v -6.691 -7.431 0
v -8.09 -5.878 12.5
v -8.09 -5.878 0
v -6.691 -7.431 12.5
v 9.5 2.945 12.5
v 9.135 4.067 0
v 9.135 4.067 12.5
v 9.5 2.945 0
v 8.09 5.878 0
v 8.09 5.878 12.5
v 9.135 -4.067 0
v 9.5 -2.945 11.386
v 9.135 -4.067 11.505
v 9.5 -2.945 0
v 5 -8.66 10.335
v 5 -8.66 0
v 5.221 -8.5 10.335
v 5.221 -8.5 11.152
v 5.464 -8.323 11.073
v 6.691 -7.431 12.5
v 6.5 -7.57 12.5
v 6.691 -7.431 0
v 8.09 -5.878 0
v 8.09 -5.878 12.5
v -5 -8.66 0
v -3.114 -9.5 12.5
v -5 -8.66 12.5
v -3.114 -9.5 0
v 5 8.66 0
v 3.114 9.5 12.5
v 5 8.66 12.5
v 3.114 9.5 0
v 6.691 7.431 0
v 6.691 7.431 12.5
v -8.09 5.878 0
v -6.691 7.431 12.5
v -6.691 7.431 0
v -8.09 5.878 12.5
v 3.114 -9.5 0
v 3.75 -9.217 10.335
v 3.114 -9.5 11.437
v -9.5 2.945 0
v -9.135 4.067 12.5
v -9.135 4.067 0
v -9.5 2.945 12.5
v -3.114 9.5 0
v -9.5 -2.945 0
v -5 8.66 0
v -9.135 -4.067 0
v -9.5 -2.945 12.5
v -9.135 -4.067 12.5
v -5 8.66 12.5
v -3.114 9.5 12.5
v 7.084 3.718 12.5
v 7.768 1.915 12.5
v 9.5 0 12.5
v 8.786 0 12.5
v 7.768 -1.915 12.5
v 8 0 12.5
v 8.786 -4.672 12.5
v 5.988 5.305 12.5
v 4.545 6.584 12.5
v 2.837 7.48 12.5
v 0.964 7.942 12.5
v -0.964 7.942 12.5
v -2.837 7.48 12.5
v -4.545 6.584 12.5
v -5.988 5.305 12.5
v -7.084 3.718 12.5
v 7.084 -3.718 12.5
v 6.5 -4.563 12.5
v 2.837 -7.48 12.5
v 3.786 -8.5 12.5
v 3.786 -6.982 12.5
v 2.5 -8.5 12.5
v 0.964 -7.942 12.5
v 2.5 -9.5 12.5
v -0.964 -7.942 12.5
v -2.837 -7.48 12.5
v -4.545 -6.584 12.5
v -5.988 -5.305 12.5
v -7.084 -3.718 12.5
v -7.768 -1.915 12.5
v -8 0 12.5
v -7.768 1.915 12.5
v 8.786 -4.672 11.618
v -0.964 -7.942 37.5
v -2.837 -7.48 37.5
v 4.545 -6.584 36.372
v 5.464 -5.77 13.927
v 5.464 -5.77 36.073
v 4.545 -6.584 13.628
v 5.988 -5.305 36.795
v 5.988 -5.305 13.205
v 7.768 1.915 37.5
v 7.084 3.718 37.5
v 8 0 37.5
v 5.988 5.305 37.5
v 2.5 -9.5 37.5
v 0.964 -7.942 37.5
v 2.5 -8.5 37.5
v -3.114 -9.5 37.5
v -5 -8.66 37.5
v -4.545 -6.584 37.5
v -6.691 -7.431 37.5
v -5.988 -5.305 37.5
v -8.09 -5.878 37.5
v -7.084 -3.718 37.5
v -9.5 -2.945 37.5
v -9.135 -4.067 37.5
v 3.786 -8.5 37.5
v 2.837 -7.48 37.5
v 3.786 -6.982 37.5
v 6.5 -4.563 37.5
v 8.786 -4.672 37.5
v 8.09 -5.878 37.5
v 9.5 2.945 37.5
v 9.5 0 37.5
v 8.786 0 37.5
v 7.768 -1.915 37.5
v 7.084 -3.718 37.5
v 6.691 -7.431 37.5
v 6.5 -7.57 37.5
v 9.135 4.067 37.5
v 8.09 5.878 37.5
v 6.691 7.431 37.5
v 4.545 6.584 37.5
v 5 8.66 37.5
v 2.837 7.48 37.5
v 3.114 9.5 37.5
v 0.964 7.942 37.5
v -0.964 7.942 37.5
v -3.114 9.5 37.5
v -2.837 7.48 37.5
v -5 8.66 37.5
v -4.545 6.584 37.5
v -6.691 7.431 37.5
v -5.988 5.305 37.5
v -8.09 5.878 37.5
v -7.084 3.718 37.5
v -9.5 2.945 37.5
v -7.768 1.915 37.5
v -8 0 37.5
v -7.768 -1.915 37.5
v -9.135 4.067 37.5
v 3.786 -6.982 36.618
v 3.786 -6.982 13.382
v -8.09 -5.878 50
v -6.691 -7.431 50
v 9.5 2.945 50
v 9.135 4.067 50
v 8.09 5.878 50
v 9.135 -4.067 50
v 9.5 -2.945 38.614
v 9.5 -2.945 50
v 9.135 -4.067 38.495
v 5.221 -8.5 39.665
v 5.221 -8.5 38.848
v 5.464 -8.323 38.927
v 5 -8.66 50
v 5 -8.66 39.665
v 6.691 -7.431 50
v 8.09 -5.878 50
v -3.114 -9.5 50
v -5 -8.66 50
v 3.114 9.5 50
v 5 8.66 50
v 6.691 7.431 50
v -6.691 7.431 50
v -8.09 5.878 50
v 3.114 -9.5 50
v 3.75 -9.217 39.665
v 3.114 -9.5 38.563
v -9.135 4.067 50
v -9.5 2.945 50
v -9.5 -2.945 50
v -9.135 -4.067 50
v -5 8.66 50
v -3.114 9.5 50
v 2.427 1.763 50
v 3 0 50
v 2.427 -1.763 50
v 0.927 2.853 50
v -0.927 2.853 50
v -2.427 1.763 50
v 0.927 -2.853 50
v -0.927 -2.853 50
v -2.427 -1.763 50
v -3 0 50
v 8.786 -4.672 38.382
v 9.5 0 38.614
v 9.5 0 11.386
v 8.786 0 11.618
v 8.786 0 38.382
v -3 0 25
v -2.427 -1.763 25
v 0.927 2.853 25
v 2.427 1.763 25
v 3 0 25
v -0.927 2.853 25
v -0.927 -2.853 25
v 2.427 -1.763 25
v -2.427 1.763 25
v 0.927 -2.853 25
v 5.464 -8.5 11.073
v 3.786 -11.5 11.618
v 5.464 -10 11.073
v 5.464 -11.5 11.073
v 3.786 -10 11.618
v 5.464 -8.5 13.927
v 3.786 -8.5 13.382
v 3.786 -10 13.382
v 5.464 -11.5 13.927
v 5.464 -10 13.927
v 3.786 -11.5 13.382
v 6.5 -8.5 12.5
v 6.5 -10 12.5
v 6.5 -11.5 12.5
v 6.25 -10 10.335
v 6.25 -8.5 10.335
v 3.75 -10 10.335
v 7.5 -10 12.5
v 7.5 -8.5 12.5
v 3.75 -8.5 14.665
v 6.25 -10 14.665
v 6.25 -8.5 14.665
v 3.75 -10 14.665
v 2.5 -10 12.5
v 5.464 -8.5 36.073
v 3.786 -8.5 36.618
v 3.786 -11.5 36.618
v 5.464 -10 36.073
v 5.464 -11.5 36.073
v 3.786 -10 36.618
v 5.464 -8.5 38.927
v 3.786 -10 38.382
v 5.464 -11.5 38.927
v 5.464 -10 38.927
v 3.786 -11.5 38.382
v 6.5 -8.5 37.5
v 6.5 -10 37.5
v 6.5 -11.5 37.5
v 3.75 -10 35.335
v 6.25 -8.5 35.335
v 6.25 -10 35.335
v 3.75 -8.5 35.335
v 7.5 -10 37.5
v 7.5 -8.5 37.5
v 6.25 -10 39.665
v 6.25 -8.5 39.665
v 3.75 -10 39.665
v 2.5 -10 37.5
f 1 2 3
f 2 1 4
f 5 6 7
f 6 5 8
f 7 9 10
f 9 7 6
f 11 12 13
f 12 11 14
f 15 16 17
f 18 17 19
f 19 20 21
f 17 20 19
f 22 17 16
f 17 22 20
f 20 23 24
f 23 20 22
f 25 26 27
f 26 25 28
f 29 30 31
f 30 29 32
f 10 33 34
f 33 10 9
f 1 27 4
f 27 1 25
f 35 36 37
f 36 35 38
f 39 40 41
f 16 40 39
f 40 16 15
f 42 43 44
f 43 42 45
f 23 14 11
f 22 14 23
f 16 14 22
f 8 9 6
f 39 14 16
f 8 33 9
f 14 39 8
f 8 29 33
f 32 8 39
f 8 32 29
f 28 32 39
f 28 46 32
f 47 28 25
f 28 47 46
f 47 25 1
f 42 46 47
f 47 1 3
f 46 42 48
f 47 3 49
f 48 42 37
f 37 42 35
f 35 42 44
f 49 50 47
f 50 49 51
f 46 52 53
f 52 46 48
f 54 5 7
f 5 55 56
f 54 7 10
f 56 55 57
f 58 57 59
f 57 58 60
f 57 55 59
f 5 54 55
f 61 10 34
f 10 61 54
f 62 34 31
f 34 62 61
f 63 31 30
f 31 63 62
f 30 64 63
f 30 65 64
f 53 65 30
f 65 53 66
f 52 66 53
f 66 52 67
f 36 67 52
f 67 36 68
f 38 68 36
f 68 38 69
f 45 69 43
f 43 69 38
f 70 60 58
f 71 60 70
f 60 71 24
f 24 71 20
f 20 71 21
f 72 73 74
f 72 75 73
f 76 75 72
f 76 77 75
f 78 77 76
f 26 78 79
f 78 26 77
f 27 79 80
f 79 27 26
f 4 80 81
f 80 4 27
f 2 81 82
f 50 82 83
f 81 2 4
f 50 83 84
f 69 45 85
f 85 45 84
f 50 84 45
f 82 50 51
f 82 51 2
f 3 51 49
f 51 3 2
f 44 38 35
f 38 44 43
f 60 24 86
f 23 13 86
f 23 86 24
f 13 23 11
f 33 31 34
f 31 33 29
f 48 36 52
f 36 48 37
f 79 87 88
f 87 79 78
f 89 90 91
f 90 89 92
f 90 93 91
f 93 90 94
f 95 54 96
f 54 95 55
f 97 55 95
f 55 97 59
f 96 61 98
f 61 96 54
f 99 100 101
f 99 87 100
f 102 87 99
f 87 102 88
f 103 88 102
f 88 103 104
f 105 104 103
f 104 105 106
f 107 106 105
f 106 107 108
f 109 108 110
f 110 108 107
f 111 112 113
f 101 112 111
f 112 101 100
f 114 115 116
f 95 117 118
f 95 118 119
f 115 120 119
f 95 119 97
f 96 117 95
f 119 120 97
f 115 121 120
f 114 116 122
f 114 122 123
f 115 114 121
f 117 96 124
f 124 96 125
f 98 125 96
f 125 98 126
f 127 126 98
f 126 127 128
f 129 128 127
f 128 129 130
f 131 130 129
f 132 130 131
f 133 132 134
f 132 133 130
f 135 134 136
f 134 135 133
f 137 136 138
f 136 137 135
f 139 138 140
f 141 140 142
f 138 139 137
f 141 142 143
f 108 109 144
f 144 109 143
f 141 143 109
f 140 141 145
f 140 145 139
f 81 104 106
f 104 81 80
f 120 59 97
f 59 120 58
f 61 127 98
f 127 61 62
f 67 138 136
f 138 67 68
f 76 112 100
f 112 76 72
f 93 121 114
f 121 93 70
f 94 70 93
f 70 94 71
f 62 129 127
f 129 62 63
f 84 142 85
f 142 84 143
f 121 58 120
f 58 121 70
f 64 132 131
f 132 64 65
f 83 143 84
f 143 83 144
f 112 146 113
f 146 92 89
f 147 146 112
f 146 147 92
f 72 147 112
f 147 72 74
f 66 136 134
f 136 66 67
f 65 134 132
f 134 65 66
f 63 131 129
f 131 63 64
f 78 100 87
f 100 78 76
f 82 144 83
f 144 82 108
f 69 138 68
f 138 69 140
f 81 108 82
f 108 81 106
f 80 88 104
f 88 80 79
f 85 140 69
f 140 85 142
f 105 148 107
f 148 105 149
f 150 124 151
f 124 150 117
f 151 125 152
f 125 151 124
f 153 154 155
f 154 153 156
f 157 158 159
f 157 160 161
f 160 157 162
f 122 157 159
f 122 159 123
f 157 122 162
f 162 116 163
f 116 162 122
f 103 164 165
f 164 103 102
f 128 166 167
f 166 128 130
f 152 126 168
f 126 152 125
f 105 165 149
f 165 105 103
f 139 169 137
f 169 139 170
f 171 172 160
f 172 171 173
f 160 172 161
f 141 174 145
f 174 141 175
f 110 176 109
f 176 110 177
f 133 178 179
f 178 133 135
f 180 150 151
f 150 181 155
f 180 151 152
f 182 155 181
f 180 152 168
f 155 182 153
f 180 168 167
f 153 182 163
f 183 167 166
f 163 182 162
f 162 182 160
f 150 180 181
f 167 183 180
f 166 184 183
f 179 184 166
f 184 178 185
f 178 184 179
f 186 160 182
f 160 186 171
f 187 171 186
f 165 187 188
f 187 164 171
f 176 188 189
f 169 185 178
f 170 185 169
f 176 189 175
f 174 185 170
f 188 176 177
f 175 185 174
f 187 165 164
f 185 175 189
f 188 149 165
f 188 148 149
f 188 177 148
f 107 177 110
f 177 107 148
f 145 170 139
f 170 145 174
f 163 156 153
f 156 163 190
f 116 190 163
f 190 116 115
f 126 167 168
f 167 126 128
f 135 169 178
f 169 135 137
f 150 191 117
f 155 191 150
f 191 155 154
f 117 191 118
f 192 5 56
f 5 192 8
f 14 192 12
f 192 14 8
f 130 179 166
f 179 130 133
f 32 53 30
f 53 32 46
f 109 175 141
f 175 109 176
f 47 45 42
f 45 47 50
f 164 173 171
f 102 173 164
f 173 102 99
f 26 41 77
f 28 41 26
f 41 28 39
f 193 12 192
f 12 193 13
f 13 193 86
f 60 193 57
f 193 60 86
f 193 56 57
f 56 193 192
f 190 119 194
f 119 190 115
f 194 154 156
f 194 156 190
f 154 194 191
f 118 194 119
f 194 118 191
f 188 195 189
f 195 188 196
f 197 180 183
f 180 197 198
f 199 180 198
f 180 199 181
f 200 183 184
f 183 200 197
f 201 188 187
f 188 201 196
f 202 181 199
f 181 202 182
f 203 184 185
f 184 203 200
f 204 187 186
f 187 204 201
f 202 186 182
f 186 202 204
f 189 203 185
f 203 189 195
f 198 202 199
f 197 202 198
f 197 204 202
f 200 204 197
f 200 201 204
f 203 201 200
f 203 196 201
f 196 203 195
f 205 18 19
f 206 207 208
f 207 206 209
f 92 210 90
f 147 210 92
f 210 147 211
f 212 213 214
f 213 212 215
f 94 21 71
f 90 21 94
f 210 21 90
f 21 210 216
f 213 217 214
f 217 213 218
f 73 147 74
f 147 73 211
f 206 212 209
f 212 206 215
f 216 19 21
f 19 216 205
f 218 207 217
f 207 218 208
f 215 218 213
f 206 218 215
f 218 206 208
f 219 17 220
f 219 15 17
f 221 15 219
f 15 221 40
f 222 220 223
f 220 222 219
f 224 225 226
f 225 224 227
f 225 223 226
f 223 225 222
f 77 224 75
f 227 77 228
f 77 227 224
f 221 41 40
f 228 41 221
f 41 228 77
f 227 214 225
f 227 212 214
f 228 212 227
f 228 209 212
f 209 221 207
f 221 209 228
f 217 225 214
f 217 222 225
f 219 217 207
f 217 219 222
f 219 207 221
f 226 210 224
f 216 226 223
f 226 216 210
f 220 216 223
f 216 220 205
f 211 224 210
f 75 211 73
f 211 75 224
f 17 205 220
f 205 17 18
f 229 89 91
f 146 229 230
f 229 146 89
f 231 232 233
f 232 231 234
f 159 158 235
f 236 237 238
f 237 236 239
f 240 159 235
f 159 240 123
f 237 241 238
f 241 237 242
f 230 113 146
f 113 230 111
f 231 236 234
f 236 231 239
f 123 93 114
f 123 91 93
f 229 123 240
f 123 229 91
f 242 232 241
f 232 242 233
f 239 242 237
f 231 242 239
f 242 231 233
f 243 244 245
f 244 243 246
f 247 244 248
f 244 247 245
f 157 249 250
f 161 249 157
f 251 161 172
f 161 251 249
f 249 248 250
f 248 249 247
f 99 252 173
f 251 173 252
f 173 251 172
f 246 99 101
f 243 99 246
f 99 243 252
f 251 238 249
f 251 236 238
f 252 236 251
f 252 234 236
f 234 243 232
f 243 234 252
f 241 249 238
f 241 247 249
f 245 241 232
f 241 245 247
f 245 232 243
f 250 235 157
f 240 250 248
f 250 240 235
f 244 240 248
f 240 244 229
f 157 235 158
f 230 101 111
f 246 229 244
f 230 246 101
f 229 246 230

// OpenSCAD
// Parameters
flexible_coupling_length = 50; // Total length of the coupling
flexible_coupling_diameter = 20; // Diameter of the coupling
central_section_diameter = 16; // Adjusted diameter of the central section to match the original model
slit_width = 1; // Width of the slits
slit_depth = 8; // Depth of the slits
hole_diameter = 6; // Diameter of the shaft holes
threaded_hole_diameter = 3; // Diameter of the threaded holes
screw_diameter = 3; // Diameter of the fastening screws
screw_length = 10; // Length of the fastening screws
hex_head_diameter = 5; // Diameter of the hexagonal socket head

// Flexible Coupling Body
module flexible_coupling_body() {
    difference() {
        // Main cylindrical body with a narrower central section
        union() {
            cylinder(flexible_coupling_length / 4, flexible_coupling_diameter / 2, flexible_coupling_diameter / 2);
            translate([0, 0, flexible_coupling_length / 4])
                cylinder(flexible_coupling_length / 2, central_section_diameter / 2, central_section_diameter / 2);
            translate([0, 0, flexible_coupling_length * 3 / 4])
                cylinder(flexible_coupling_length / 4, flexible_coupling_diameter / 2, flexible_coupling_diameter / 2);
        }
        
        // Shaft holes
        translate([0, 0, flexible_coupling_length / 2])
            cylinder(flexible_coupling_length, hole_diameter / 2, hole_diameter / 2);
        
        // Slits for flexibility
        for (i = [0 : 90 : 270]) {
            rotate([0, 0, i])
                for (j = [flexible_coupling_length / 6, flexible_coupling_length / 2, flexible_coupling_length * 5 / 6]) {
                    translate([flexible_coupling_diameter / 2, 0, j])
                        cube([slit_width, slit_depth, flexible_coupling_length / 3], center = true);
                }
        }
        
        // Threaded holes for screws
        for (i = [flexible_coupling_length / 4, flexible_coupling_length * 3 / 4]) {
            translate([flexible_coupling_diameter / 2, 0, i])
                rotate([90, 0, 0])
                    cylinder(flexible_coupling_length, threaded_hole_diameter / 2, threaded_hole_diameter / 2);
        }
    }
}

// Fastening Screw with Hexagonal Socket Head
module fastening_screw() {
    union() {
        cylinder(screw_length, screw_diameter / 2, screw_diameter / 2);
        translate([0, 0, screw_length])
            cylinder(screw_diameter / 2, screw_diameter / 2, screw_diameter / 2);
        
        // Hexagonal socket head
        translate([0, 0, screw_length - screw_diameter / 2])
            cylinder(screw_diameter / 2, hex_head_diameter / 2, hex_head_diameter / 2, $fn=6);
    }
}

// Assembly
module assembly() {
    // Flexible coupling body
    flexible_coupling_body();
    
    // Fastening screws properly inserted into the threaded holes
    for (i = [flexible_coupling_length / 4, flexible_coupling_length * 3 / 4]) {
        translate([flexible_coupling_diameter / 2 - screw_length / 2, 0, i])
            rotate([90, 0, 0])
                fastening_screw();
    }
}

// Render the assembly
assembly();
